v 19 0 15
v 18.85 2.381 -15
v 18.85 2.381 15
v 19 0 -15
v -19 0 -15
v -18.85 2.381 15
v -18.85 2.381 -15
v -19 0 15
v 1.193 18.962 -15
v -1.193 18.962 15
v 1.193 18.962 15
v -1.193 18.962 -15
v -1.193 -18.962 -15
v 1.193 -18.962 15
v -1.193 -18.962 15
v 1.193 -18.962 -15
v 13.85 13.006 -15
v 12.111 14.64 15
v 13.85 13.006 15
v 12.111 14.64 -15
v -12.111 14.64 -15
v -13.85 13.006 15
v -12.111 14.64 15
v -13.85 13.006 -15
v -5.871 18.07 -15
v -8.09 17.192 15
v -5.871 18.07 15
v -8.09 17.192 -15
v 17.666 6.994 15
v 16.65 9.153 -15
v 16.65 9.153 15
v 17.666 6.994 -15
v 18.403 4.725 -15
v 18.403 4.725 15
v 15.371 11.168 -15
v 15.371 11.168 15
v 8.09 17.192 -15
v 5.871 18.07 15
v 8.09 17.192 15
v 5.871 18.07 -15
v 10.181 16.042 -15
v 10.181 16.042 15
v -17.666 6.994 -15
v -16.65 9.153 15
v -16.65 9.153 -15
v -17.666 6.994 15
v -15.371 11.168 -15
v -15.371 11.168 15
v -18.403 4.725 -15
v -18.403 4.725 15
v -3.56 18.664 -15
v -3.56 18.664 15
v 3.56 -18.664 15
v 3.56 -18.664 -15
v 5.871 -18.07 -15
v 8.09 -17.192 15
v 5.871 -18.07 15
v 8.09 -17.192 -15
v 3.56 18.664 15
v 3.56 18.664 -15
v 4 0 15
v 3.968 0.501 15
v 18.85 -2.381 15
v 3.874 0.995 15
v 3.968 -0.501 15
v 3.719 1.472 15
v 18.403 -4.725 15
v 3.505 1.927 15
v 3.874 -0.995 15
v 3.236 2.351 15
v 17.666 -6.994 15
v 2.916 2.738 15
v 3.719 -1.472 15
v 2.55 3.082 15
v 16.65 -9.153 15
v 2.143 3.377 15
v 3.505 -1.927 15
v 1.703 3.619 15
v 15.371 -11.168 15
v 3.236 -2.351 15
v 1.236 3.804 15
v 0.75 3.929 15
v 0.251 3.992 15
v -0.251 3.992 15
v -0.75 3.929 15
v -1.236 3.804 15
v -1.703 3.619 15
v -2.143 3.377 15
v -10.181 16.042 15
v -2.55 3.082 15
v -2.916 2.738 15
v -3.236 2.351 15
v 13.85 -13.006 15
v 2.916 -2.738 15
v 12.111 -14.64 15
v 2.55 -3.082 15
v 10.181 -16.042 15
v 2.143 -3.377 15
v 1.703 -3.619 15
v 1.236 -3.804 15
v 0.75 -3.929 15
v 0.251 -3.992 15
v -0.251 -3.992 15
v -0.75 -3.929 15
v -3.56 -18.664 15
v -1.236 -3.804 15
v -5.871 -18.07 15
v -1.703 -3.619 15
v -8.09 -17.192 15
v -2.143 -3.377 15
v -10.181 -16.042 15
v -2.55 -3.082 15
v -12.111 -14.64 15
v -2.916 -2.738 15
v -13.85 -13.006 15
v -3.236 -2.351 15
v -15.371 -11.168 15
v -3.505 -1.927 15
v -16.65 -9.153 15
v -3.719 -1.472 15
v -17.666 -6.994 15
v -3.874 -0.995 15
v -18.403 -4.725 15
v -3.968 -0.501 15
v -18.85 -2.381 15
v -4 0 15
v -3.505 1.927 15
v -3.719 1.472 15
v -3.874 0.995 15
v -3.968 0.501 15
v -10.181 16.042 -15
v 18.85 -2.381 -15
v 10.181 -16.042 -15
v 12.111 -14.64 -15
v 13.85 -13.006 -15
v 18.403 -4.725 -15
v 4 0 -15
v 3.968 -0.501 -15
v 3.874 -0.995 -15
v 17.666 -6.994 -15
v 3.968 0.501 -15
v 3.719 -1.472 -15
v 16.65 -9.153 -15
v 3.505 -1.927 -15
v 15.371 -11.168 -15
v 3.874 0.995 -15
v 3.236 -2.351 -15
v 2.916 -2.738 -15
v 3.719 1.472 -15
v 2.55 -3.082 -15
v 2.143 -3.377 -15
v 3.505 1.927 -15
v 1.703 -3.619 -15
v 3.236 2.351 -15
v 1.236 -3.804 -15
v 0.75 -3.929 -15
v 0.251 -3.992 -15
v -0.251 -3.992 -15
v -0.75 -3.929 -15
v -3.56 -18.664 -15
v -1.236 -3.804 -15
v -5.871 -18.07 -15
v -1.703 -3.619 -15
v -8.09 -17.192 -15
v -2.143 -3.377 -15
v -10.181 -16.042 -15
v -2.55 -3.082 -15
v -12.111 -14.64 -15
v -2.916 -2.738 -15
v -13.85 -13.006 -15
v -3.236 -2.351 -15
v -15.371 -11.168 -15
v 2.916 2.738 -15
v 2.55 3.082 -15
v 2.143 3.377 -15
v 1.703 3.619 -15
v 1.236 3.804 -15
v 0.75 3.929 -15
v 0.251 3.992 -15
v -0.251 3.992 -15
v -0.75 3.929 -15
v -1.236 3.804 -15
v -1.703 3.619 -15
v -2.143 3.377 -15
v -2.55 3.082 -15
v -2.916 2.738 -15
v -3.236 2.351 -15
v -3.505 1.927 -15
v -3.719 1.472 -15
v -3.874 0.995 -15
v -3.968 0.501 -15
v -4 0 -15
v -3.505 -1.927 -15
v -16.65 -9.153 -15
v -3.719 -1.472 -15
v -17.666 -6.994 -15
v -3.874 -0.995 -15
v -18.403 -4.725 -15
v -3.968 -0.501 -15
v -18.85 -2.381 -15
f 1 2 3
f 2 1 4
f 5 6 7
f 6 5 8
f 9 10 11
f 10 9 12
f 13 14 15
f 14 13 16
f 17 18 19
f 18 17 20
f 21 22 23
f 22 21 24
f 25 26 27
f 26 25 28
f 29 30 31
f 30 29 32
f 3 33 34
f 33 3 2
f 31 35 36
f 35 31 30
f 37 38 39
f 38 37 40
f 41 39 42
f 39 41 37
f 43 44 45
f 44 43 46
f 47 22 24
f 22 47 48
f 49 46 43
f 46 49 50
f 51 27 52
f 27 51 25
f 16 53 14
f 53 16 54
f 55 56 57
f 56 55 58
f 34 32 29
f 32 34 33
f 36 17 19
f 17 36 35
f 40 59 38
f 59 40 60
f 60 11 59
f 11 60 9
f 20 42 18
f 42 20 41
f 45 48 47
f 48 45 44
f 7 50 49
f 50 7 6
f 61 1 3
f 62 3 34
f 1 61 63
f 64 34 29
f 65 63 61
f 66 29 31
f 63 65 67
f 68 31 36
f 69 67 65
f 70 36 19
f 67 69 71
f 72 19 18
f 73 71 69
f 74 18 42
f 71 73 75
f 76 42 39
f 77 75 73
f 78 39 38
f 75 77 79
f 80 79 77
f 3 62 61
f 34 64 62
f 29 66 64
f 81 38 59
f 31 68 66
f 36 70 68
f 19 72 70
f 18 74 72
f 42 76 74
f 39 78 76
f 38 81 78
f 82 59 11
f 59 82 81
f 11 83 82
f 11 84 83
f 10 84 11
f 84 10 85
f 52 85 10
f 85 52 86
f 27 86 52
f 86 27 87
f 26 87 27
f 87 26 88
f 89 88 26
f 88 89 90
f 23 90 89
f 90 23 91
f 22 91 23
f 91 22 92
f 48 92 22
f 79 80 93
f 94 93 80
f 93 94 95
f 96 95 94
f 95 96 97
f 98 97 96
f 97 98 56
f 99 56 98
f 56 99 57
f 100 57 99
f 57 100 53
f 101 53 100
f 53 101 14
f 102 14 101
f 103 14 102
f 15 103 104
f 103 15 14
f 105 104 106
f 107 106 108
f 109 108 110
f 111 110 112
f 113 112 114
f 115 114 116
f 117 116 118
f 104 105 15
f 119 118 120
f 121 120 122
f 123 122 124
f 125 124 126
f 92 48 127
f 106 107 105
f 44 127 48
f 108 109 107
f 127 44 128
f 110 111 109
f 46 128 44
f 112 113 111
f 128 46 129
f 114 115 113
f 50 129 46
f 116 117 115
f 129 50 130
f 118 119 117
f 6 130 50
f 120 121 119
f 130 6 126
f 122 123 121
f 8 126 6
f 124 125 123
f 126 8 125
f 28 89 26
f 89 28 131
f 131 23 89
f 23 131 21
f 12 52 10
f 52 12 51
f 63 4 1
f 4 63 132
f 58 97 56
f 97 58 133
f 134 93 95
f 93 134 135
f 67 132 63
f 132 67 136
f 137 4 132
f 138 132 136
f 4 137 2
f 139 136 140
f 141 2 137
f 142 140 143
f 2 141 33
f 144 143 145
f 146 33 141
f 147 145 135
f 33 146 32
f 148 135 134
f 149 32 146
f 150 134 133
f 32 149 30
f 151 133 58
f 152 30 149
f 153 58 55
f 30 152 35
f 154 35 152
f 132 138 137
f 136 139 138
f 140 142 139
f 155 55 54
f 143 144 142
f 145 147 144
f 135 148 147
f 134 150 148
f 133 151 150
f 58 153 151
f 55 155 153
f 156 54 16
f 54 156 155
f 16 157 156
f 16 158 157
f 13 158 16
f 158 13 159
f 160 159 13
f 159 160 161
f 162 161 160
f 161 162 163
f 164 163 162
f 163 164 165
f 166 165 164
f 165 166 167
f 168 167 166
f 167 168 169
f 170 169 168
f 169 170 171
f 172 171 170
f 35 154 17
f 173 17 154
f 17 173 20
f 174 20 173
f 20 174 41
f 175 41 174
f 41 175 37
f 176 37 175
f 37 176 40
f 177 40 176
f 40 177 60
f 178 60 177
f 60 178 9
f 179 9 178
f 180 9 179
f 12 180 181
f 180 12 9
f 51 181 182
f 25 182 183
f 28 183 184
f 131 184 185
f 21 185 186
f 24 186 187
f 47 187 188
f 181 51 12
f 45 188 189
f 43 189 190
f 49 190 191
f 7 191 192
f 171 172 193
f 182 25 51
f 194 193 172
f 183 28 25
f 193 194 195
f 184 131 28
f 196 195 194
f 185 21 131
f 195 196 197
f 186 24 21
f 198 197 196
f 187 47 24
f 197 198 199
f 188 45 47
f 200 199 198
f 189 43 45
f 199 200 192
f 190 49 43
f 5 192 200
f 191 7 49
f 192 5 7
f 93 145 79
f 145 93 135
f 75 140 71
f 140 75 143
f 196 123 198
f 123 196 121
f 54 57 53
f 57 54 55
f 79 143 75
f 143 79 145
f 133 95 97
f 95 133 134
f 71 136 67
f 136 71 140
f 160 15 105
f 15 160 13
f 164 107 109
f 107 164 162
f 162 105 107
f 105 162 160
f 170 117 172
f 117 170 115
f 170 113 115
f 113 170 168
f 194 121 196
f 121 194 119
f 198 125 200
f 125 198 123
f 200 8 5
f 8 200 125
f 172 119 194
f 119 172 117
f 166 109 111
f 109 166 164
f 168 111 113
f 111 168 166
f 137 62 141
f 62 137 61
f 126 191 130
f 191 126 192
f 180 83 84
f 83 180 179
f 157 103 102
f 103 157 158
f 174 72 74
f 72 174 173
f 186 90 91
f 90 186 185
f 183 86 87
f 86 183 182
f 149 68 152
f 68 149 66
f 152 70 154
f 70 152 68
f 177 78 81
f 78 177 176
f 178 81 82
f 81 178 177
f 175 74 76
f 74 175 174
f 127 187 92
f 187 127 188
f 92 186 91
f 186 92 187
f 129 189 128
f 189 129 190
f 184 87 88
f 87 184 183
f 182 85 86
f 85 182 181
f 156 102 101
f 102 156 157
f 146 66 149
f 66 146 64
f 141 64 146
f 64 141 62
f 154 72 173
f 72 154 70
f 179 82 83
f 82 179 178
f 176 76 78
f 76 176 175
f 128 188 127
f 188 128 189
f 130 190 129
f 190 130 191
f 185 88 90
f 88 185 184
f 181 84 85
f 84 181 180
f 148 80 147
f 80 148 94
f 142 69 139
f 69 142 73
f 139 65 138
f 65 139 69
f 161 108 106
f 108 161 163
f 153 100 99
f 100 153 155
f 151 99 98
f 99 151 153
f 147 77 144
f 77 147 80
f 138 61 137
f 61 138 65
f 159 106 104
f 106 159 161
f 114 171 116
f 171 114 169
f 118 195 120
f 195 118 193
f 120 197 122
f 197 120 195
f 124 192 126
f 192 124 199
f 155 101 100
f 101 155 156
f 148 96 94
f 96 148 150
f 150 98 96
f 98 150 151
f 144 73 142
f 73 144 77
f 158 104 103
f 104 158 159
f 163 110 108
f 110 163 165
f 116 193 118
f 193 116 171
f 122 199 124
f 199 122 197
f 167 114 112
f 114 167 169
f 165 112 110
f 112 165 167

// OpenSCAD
$fn = 50;


difference() {
	union() {
		translate(v = [0, 0, -15.0000000000]) {
			cylinder(h = 30, r = 19.0000000000);
		}
	}
	union() {
		translate(v = [0, 0, -100.0000000000]) {
			cylinder(h = 200, r = 4.0000000000);
		}
	}
}
